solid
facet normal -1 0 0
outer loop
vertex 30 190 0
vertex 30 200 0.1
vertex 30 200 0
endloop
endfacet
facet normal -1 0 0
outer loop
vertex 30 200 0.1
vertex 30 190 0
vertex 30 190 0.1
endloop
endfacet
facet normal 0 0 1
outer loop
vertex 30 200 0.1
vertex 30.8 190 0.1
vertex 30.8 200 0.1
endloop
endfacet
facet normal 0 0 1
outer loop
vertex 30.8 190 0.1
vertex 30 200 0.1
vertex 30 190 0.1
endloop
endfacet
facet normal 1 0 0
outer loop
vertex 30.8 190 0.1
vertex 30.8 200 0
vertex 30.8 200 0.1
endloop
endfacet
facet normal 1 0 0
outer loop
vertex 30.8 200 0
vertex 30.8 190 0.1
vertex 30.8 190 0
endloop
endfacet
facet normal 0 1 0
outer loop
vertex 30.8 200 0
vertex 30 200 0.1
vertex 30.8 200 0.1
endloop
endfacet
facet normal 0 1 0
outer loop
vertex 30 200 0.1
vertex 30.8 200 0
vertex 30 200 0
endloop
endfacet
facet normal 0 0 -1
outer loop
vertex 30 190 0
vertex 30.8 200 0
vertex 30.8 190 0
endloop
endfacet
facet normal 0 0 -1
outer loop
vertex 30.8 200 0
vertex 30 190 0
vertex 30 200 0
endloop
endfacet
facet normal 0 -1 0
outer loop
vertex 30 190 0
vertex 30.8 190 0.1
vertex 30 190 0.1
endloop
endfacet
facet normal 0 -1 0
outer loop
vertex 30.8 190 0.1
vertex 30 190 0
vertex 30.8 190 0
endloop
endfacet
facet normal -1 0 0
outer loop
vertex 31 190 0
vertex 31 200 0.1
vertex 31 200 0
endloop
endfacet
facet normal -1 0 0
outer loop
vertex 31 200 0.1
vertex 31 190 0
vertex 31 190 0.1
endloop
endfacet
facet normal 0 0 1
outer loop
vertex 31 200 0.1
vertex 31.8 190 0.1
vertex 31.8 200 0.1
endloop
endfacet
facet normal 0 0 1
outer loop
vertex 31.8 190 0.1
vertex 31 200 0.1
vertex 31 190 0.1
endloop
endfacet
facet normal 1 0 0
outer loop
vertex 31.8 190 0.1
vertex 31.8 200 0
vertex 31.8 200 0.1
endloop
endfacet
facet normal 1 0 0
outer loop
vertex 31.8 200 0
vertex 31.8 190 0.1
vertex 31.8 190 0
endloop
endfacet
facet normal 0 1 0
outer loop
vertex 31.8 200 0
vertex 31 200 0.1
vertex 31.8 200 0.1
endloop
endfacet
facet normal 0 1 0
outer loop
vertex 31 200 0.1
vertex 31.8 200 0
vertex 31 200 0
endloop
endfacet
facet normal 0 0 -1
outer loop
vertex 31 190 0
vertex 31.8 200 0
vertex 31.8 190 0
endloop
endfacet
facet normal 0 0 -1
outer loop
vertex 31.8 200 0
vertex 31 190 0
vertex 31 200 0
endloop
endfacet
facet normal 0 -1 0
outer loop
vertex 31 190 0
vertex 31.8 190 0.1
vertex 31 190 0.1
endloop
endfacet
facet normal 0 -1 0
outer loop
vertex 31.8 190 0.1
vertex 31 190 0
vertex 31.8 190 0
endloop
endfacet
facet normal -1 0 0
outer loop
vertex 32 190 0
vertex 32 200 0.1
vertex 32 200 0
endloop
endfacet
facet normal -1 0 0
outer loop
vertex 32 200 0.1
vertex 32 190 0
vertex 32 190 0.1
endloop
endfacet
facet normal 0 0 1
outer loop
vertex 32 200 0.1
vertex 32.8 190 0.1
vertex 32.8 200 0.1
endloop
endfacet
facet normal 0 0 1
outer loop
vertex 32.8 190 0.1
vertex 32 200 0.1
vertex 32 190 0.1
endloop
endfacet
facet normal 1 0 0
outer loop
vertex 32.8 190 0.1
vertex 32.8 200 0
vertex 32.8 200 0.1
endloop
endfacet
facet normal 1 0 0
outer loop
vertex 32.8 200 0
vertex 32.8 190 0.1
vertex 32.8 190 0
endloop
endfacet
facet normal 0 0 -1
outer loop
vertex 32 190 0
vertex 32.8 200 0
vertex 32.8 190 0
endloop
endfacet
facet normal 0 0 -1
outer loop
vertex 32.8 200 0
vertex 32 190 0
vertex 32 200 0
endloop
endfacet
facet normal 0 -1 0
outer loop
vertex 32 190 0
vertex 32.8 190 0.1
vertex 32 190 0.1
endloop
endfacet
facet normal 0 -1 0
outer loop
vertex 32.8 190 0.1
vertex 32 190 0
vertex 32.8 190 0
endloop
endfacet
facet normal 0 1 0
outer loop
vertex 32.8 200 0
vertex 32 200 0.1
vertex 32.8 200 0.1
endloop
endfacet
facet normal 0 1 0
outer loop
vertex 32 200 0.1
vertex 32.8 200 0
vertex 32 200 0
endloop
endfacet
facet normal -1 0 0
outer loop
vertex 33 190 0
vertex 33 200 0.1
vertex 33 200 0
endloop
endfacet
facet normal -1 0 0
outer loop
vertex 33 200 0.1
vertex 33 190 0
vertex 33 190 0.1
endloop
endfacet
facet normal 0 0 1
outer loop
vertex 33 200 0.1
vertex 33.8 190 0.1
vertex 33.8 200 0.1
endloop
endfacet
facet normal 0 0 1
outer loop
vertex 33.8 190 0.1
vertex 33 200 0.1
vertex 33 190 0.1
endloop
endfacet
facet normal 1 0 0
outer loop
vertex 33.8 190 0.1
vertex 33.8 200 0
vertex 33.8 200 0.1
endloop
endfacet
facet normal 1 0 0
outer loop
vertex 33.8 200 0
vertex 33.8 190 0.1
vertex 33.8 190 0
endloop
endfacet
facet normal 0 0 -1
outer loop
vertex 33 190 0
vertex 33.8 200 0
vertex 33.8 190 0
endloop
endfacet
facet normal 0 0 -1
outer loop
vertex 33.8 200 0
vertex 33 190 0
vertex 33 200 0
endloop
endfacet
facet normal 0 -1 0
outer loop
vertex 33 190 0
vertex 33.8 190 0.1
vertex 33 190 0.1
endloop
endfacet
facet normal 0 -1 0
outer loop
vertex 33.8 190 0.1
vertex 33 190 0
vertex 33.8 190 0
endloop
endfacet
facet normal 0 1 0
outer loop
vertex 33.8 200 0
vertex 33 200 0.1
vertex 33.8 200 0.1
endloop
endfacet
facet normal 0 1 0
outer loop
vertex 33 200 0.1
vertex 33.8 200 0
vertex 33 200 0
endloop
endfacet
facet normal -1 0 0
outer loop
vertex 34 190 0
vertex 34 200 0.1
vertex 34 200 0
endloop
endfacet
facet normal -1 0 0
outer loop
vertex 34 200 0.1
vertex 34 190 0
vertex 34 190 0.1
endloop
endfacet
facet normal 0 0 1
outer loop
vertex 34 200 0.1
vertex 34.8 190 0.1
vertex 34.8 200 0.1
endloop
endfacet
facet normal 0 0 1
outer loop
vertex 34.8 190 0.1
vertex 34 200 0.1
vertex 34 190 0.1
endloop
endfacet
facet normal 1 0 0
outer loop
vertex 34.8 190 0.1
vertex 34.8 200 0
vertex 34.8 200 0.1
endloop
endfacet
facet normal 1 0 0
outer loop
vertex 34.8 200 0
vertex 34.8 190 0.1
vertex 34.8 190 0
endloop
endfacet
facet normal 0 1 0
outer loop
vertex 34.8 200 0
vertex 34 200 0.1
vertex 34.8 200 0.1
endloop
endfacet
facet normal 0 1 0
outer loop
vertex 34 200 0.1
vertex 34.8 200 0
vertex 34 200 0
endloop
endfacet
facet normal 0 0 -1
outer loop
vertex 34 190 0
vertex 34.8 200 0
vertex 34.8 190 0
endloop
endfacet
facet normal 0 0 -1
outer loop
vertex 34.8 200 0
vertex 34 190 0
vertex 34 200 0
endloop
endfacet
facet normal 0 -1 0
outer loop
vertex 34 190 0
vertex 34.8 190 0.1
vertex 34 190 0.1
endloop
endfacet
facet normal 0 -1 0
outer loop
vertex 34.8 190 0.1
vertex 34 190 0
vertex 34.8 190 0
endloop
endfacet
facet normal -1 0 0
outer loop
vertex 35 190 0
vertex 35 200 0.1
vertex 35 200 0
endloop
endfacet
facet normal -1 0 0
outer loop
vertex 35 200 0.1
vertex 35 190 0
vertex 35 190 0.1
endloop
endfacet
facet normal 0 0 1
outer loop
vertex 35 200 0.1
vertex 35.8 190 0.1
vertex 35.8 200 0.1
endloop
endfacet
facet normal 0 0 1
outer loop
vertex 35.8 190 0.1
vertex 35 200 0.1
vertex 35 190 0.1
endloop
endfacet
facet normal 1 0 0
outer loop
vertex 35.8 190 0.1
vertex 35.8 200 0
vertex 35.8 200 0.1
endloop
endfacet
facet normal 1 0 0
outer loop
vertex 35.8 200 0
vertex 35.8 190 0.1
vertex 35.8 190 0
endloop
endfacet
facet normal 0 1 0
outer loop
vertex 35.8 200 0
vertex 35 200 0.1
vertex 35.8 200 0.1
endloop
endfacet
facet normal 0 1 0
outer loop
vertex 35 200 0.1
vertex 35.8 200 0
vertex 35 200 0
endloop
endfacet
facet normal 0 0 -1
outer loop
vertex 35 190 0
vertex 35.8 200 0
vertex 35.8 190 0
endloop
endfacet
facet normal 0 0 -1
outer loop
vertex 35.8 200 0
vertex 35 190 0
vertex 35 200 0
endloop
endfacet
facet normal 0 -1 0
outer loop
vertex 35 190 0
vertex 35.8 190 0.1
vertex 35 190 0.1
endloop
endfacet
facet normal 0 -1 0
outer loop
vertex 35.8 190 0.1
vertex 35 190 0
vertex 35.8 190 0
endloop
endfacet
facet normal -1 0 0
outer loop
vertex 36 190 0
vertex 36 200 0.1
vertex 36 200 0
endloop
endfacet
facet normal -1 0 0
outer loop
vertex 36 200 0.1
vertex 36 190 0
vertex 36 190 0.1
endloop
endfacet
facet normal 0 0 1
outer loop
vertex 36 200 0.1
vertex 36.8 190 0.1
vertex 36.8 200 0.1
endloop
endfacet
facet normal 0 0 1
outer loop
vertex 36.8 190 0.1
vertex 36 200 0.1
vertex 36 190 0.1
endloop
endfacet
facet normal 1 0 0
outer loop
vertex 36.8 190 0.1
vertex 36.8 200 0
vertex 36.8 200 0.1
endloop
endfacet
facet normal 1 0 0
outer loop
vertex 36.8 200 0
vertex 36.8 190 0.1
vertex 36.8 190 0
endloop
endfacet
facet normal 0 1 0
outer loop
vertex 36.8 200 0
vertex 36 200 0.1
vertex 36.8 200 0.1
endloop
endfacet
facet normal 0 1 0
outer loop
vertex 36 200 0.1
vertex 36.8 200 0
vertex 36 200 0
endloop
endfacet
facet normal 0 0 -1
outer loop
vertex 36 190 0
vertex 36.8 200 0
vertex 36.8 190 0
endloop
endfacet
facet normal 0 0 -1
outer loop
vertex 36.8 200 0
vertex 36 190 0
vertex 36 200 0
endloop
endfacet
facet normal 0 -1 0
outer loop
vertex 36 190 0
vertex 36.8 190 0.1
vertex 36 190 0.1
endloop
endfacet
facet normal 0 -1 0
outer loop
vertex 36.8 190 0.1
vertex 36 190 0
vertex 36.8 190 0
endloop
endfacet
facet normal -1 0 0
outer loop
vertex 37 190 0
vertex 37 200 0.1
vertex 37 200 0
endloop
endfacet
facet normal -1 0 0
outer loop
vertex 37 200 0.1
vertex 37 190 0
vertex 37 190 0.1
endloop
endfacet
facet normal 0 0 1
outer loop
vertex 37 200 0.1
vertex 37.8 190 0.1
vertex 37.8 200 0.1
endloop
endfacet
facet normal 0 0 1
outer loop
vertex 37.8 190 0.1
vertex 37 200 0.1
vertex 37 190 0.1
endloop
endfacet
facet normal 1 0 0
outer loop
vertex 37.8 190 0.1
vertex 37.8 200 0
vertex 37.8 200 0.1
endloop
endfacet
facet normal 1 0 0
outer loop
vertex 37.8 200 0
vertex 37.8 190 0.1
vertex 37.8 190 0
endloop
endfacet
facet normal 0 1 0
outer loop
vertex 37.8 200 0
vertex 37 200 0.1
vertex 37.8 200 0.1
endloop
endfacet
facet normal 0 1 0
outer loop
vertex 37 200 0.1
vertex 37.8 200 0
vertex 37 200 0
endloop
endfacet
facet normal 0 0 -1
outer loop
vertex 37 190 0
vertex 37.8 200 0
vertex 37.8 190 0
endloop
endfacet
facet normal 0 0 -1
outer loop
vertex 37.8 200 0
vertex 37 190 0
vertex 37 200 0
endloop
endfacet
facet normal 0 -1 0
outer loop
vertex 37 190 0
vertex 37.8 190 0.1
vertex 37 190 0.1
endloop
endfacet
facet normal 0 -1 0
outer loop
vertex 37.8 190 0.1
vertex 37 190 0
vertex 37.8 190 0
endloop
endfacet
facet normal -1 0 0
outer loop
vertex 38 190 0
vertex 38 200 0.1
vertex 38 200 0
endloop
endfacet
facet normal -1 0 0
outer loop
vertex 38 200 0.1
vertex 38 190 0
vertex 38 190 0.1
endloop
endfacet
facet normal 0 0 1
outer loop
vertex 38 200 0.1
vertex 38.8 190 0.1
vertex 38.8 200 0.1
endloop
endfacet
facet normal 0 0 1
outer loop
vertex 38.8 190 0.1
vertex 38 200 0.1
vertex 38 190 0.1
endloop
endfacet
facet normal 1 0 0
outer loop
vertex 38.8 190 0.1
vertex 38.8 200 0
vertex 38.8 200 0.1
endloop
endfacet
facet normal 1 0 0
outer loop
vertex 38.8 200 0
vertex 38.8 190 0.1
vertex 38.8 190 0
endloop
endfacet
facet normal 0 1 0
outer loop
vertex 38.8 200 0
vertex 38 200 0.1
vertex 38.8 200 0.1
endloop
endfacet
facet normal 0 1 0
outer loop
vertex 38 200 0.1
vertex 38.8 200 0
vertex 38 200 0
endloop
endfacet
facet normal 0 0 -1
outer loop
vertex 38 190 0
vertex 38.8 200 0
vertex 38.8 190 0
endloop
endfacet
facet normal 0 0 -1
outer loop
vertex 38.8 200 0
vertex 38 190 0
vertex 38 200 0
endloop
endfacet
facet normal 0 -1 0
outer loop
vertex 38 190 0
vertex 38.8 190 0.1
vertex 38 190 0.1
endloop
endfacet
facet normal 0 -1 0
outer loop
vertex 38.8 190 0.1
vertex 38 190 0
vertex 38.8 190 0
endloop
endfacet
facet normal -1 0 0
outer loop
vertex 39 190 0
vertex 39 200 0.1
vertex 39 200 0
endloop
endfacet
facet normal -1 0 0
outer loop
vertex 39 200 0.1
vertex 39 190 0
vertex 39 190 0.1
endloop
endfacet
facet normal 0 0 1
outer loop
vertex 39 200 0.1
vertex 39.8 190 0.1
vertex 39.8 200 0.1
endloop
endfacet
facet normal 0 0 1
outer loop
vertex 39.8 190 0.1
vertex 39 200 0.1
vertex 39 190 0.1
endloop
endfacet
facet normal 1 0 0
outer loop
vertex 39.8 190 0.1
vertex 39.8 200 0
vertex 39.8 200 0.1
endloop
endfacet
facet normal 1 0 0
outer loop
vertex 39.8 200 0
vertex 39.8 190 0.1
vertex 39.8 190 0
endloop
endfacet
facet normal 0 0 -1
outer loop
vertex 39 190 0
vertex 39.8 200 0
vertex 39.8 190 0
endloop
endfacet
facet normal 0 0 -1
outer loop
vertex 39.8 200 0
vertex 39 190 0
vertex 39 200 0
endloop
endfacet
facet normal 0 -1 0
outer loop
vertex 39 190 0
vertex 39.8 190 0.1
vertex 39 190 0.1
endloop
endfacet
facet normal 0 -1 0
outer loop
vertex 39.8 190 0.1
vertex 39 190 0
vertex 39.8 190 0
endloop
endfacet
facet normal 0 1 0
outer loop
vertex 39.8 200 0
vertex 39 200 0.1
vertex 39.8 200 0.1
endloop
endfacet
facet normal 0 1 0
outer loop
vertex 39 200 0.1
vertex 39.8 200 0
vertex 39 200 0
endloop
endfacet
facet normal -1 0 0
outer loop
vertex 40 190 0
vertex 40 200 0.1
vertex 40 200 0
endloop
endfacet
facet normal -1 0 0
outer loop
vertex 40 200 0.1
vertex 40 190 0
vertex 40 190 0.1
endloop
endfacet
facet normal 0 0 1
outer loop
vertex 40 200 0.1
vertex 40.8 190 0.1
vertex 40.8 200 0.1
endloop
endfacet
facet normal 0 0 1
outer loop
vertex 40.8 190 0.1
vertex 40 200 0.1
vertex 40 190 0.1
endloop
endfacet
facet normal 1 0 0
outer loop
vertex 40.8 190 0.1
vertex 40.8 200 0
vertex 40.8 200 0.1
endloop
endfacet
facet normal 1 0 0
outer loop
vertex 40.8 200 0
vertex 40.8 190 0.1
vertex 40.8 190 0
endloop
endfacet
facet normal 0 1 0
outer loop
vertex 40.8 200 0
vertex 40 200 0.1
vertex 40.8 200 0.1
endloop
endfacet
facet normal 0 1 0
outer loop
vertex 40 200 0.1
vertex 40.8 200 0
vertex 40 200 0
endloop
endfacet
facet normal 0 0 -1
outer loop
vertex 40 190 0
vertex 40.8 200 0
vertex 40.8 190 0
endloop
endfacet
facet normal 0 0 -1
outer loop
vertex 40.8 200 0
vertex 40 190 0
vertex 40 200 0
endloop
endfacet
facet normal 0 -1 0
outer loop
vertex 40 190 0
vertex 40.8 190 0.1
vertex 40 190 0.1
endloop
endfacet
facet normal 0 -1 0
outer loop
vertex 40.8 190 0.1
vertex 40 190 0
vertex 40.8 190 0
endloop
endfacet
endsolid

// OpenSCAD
translate([10+20,10+180,0])
        for (i = [0 : 10]){
            translate([i,0,0])
                cube(size = [0.8,10,0.1]);
    }
